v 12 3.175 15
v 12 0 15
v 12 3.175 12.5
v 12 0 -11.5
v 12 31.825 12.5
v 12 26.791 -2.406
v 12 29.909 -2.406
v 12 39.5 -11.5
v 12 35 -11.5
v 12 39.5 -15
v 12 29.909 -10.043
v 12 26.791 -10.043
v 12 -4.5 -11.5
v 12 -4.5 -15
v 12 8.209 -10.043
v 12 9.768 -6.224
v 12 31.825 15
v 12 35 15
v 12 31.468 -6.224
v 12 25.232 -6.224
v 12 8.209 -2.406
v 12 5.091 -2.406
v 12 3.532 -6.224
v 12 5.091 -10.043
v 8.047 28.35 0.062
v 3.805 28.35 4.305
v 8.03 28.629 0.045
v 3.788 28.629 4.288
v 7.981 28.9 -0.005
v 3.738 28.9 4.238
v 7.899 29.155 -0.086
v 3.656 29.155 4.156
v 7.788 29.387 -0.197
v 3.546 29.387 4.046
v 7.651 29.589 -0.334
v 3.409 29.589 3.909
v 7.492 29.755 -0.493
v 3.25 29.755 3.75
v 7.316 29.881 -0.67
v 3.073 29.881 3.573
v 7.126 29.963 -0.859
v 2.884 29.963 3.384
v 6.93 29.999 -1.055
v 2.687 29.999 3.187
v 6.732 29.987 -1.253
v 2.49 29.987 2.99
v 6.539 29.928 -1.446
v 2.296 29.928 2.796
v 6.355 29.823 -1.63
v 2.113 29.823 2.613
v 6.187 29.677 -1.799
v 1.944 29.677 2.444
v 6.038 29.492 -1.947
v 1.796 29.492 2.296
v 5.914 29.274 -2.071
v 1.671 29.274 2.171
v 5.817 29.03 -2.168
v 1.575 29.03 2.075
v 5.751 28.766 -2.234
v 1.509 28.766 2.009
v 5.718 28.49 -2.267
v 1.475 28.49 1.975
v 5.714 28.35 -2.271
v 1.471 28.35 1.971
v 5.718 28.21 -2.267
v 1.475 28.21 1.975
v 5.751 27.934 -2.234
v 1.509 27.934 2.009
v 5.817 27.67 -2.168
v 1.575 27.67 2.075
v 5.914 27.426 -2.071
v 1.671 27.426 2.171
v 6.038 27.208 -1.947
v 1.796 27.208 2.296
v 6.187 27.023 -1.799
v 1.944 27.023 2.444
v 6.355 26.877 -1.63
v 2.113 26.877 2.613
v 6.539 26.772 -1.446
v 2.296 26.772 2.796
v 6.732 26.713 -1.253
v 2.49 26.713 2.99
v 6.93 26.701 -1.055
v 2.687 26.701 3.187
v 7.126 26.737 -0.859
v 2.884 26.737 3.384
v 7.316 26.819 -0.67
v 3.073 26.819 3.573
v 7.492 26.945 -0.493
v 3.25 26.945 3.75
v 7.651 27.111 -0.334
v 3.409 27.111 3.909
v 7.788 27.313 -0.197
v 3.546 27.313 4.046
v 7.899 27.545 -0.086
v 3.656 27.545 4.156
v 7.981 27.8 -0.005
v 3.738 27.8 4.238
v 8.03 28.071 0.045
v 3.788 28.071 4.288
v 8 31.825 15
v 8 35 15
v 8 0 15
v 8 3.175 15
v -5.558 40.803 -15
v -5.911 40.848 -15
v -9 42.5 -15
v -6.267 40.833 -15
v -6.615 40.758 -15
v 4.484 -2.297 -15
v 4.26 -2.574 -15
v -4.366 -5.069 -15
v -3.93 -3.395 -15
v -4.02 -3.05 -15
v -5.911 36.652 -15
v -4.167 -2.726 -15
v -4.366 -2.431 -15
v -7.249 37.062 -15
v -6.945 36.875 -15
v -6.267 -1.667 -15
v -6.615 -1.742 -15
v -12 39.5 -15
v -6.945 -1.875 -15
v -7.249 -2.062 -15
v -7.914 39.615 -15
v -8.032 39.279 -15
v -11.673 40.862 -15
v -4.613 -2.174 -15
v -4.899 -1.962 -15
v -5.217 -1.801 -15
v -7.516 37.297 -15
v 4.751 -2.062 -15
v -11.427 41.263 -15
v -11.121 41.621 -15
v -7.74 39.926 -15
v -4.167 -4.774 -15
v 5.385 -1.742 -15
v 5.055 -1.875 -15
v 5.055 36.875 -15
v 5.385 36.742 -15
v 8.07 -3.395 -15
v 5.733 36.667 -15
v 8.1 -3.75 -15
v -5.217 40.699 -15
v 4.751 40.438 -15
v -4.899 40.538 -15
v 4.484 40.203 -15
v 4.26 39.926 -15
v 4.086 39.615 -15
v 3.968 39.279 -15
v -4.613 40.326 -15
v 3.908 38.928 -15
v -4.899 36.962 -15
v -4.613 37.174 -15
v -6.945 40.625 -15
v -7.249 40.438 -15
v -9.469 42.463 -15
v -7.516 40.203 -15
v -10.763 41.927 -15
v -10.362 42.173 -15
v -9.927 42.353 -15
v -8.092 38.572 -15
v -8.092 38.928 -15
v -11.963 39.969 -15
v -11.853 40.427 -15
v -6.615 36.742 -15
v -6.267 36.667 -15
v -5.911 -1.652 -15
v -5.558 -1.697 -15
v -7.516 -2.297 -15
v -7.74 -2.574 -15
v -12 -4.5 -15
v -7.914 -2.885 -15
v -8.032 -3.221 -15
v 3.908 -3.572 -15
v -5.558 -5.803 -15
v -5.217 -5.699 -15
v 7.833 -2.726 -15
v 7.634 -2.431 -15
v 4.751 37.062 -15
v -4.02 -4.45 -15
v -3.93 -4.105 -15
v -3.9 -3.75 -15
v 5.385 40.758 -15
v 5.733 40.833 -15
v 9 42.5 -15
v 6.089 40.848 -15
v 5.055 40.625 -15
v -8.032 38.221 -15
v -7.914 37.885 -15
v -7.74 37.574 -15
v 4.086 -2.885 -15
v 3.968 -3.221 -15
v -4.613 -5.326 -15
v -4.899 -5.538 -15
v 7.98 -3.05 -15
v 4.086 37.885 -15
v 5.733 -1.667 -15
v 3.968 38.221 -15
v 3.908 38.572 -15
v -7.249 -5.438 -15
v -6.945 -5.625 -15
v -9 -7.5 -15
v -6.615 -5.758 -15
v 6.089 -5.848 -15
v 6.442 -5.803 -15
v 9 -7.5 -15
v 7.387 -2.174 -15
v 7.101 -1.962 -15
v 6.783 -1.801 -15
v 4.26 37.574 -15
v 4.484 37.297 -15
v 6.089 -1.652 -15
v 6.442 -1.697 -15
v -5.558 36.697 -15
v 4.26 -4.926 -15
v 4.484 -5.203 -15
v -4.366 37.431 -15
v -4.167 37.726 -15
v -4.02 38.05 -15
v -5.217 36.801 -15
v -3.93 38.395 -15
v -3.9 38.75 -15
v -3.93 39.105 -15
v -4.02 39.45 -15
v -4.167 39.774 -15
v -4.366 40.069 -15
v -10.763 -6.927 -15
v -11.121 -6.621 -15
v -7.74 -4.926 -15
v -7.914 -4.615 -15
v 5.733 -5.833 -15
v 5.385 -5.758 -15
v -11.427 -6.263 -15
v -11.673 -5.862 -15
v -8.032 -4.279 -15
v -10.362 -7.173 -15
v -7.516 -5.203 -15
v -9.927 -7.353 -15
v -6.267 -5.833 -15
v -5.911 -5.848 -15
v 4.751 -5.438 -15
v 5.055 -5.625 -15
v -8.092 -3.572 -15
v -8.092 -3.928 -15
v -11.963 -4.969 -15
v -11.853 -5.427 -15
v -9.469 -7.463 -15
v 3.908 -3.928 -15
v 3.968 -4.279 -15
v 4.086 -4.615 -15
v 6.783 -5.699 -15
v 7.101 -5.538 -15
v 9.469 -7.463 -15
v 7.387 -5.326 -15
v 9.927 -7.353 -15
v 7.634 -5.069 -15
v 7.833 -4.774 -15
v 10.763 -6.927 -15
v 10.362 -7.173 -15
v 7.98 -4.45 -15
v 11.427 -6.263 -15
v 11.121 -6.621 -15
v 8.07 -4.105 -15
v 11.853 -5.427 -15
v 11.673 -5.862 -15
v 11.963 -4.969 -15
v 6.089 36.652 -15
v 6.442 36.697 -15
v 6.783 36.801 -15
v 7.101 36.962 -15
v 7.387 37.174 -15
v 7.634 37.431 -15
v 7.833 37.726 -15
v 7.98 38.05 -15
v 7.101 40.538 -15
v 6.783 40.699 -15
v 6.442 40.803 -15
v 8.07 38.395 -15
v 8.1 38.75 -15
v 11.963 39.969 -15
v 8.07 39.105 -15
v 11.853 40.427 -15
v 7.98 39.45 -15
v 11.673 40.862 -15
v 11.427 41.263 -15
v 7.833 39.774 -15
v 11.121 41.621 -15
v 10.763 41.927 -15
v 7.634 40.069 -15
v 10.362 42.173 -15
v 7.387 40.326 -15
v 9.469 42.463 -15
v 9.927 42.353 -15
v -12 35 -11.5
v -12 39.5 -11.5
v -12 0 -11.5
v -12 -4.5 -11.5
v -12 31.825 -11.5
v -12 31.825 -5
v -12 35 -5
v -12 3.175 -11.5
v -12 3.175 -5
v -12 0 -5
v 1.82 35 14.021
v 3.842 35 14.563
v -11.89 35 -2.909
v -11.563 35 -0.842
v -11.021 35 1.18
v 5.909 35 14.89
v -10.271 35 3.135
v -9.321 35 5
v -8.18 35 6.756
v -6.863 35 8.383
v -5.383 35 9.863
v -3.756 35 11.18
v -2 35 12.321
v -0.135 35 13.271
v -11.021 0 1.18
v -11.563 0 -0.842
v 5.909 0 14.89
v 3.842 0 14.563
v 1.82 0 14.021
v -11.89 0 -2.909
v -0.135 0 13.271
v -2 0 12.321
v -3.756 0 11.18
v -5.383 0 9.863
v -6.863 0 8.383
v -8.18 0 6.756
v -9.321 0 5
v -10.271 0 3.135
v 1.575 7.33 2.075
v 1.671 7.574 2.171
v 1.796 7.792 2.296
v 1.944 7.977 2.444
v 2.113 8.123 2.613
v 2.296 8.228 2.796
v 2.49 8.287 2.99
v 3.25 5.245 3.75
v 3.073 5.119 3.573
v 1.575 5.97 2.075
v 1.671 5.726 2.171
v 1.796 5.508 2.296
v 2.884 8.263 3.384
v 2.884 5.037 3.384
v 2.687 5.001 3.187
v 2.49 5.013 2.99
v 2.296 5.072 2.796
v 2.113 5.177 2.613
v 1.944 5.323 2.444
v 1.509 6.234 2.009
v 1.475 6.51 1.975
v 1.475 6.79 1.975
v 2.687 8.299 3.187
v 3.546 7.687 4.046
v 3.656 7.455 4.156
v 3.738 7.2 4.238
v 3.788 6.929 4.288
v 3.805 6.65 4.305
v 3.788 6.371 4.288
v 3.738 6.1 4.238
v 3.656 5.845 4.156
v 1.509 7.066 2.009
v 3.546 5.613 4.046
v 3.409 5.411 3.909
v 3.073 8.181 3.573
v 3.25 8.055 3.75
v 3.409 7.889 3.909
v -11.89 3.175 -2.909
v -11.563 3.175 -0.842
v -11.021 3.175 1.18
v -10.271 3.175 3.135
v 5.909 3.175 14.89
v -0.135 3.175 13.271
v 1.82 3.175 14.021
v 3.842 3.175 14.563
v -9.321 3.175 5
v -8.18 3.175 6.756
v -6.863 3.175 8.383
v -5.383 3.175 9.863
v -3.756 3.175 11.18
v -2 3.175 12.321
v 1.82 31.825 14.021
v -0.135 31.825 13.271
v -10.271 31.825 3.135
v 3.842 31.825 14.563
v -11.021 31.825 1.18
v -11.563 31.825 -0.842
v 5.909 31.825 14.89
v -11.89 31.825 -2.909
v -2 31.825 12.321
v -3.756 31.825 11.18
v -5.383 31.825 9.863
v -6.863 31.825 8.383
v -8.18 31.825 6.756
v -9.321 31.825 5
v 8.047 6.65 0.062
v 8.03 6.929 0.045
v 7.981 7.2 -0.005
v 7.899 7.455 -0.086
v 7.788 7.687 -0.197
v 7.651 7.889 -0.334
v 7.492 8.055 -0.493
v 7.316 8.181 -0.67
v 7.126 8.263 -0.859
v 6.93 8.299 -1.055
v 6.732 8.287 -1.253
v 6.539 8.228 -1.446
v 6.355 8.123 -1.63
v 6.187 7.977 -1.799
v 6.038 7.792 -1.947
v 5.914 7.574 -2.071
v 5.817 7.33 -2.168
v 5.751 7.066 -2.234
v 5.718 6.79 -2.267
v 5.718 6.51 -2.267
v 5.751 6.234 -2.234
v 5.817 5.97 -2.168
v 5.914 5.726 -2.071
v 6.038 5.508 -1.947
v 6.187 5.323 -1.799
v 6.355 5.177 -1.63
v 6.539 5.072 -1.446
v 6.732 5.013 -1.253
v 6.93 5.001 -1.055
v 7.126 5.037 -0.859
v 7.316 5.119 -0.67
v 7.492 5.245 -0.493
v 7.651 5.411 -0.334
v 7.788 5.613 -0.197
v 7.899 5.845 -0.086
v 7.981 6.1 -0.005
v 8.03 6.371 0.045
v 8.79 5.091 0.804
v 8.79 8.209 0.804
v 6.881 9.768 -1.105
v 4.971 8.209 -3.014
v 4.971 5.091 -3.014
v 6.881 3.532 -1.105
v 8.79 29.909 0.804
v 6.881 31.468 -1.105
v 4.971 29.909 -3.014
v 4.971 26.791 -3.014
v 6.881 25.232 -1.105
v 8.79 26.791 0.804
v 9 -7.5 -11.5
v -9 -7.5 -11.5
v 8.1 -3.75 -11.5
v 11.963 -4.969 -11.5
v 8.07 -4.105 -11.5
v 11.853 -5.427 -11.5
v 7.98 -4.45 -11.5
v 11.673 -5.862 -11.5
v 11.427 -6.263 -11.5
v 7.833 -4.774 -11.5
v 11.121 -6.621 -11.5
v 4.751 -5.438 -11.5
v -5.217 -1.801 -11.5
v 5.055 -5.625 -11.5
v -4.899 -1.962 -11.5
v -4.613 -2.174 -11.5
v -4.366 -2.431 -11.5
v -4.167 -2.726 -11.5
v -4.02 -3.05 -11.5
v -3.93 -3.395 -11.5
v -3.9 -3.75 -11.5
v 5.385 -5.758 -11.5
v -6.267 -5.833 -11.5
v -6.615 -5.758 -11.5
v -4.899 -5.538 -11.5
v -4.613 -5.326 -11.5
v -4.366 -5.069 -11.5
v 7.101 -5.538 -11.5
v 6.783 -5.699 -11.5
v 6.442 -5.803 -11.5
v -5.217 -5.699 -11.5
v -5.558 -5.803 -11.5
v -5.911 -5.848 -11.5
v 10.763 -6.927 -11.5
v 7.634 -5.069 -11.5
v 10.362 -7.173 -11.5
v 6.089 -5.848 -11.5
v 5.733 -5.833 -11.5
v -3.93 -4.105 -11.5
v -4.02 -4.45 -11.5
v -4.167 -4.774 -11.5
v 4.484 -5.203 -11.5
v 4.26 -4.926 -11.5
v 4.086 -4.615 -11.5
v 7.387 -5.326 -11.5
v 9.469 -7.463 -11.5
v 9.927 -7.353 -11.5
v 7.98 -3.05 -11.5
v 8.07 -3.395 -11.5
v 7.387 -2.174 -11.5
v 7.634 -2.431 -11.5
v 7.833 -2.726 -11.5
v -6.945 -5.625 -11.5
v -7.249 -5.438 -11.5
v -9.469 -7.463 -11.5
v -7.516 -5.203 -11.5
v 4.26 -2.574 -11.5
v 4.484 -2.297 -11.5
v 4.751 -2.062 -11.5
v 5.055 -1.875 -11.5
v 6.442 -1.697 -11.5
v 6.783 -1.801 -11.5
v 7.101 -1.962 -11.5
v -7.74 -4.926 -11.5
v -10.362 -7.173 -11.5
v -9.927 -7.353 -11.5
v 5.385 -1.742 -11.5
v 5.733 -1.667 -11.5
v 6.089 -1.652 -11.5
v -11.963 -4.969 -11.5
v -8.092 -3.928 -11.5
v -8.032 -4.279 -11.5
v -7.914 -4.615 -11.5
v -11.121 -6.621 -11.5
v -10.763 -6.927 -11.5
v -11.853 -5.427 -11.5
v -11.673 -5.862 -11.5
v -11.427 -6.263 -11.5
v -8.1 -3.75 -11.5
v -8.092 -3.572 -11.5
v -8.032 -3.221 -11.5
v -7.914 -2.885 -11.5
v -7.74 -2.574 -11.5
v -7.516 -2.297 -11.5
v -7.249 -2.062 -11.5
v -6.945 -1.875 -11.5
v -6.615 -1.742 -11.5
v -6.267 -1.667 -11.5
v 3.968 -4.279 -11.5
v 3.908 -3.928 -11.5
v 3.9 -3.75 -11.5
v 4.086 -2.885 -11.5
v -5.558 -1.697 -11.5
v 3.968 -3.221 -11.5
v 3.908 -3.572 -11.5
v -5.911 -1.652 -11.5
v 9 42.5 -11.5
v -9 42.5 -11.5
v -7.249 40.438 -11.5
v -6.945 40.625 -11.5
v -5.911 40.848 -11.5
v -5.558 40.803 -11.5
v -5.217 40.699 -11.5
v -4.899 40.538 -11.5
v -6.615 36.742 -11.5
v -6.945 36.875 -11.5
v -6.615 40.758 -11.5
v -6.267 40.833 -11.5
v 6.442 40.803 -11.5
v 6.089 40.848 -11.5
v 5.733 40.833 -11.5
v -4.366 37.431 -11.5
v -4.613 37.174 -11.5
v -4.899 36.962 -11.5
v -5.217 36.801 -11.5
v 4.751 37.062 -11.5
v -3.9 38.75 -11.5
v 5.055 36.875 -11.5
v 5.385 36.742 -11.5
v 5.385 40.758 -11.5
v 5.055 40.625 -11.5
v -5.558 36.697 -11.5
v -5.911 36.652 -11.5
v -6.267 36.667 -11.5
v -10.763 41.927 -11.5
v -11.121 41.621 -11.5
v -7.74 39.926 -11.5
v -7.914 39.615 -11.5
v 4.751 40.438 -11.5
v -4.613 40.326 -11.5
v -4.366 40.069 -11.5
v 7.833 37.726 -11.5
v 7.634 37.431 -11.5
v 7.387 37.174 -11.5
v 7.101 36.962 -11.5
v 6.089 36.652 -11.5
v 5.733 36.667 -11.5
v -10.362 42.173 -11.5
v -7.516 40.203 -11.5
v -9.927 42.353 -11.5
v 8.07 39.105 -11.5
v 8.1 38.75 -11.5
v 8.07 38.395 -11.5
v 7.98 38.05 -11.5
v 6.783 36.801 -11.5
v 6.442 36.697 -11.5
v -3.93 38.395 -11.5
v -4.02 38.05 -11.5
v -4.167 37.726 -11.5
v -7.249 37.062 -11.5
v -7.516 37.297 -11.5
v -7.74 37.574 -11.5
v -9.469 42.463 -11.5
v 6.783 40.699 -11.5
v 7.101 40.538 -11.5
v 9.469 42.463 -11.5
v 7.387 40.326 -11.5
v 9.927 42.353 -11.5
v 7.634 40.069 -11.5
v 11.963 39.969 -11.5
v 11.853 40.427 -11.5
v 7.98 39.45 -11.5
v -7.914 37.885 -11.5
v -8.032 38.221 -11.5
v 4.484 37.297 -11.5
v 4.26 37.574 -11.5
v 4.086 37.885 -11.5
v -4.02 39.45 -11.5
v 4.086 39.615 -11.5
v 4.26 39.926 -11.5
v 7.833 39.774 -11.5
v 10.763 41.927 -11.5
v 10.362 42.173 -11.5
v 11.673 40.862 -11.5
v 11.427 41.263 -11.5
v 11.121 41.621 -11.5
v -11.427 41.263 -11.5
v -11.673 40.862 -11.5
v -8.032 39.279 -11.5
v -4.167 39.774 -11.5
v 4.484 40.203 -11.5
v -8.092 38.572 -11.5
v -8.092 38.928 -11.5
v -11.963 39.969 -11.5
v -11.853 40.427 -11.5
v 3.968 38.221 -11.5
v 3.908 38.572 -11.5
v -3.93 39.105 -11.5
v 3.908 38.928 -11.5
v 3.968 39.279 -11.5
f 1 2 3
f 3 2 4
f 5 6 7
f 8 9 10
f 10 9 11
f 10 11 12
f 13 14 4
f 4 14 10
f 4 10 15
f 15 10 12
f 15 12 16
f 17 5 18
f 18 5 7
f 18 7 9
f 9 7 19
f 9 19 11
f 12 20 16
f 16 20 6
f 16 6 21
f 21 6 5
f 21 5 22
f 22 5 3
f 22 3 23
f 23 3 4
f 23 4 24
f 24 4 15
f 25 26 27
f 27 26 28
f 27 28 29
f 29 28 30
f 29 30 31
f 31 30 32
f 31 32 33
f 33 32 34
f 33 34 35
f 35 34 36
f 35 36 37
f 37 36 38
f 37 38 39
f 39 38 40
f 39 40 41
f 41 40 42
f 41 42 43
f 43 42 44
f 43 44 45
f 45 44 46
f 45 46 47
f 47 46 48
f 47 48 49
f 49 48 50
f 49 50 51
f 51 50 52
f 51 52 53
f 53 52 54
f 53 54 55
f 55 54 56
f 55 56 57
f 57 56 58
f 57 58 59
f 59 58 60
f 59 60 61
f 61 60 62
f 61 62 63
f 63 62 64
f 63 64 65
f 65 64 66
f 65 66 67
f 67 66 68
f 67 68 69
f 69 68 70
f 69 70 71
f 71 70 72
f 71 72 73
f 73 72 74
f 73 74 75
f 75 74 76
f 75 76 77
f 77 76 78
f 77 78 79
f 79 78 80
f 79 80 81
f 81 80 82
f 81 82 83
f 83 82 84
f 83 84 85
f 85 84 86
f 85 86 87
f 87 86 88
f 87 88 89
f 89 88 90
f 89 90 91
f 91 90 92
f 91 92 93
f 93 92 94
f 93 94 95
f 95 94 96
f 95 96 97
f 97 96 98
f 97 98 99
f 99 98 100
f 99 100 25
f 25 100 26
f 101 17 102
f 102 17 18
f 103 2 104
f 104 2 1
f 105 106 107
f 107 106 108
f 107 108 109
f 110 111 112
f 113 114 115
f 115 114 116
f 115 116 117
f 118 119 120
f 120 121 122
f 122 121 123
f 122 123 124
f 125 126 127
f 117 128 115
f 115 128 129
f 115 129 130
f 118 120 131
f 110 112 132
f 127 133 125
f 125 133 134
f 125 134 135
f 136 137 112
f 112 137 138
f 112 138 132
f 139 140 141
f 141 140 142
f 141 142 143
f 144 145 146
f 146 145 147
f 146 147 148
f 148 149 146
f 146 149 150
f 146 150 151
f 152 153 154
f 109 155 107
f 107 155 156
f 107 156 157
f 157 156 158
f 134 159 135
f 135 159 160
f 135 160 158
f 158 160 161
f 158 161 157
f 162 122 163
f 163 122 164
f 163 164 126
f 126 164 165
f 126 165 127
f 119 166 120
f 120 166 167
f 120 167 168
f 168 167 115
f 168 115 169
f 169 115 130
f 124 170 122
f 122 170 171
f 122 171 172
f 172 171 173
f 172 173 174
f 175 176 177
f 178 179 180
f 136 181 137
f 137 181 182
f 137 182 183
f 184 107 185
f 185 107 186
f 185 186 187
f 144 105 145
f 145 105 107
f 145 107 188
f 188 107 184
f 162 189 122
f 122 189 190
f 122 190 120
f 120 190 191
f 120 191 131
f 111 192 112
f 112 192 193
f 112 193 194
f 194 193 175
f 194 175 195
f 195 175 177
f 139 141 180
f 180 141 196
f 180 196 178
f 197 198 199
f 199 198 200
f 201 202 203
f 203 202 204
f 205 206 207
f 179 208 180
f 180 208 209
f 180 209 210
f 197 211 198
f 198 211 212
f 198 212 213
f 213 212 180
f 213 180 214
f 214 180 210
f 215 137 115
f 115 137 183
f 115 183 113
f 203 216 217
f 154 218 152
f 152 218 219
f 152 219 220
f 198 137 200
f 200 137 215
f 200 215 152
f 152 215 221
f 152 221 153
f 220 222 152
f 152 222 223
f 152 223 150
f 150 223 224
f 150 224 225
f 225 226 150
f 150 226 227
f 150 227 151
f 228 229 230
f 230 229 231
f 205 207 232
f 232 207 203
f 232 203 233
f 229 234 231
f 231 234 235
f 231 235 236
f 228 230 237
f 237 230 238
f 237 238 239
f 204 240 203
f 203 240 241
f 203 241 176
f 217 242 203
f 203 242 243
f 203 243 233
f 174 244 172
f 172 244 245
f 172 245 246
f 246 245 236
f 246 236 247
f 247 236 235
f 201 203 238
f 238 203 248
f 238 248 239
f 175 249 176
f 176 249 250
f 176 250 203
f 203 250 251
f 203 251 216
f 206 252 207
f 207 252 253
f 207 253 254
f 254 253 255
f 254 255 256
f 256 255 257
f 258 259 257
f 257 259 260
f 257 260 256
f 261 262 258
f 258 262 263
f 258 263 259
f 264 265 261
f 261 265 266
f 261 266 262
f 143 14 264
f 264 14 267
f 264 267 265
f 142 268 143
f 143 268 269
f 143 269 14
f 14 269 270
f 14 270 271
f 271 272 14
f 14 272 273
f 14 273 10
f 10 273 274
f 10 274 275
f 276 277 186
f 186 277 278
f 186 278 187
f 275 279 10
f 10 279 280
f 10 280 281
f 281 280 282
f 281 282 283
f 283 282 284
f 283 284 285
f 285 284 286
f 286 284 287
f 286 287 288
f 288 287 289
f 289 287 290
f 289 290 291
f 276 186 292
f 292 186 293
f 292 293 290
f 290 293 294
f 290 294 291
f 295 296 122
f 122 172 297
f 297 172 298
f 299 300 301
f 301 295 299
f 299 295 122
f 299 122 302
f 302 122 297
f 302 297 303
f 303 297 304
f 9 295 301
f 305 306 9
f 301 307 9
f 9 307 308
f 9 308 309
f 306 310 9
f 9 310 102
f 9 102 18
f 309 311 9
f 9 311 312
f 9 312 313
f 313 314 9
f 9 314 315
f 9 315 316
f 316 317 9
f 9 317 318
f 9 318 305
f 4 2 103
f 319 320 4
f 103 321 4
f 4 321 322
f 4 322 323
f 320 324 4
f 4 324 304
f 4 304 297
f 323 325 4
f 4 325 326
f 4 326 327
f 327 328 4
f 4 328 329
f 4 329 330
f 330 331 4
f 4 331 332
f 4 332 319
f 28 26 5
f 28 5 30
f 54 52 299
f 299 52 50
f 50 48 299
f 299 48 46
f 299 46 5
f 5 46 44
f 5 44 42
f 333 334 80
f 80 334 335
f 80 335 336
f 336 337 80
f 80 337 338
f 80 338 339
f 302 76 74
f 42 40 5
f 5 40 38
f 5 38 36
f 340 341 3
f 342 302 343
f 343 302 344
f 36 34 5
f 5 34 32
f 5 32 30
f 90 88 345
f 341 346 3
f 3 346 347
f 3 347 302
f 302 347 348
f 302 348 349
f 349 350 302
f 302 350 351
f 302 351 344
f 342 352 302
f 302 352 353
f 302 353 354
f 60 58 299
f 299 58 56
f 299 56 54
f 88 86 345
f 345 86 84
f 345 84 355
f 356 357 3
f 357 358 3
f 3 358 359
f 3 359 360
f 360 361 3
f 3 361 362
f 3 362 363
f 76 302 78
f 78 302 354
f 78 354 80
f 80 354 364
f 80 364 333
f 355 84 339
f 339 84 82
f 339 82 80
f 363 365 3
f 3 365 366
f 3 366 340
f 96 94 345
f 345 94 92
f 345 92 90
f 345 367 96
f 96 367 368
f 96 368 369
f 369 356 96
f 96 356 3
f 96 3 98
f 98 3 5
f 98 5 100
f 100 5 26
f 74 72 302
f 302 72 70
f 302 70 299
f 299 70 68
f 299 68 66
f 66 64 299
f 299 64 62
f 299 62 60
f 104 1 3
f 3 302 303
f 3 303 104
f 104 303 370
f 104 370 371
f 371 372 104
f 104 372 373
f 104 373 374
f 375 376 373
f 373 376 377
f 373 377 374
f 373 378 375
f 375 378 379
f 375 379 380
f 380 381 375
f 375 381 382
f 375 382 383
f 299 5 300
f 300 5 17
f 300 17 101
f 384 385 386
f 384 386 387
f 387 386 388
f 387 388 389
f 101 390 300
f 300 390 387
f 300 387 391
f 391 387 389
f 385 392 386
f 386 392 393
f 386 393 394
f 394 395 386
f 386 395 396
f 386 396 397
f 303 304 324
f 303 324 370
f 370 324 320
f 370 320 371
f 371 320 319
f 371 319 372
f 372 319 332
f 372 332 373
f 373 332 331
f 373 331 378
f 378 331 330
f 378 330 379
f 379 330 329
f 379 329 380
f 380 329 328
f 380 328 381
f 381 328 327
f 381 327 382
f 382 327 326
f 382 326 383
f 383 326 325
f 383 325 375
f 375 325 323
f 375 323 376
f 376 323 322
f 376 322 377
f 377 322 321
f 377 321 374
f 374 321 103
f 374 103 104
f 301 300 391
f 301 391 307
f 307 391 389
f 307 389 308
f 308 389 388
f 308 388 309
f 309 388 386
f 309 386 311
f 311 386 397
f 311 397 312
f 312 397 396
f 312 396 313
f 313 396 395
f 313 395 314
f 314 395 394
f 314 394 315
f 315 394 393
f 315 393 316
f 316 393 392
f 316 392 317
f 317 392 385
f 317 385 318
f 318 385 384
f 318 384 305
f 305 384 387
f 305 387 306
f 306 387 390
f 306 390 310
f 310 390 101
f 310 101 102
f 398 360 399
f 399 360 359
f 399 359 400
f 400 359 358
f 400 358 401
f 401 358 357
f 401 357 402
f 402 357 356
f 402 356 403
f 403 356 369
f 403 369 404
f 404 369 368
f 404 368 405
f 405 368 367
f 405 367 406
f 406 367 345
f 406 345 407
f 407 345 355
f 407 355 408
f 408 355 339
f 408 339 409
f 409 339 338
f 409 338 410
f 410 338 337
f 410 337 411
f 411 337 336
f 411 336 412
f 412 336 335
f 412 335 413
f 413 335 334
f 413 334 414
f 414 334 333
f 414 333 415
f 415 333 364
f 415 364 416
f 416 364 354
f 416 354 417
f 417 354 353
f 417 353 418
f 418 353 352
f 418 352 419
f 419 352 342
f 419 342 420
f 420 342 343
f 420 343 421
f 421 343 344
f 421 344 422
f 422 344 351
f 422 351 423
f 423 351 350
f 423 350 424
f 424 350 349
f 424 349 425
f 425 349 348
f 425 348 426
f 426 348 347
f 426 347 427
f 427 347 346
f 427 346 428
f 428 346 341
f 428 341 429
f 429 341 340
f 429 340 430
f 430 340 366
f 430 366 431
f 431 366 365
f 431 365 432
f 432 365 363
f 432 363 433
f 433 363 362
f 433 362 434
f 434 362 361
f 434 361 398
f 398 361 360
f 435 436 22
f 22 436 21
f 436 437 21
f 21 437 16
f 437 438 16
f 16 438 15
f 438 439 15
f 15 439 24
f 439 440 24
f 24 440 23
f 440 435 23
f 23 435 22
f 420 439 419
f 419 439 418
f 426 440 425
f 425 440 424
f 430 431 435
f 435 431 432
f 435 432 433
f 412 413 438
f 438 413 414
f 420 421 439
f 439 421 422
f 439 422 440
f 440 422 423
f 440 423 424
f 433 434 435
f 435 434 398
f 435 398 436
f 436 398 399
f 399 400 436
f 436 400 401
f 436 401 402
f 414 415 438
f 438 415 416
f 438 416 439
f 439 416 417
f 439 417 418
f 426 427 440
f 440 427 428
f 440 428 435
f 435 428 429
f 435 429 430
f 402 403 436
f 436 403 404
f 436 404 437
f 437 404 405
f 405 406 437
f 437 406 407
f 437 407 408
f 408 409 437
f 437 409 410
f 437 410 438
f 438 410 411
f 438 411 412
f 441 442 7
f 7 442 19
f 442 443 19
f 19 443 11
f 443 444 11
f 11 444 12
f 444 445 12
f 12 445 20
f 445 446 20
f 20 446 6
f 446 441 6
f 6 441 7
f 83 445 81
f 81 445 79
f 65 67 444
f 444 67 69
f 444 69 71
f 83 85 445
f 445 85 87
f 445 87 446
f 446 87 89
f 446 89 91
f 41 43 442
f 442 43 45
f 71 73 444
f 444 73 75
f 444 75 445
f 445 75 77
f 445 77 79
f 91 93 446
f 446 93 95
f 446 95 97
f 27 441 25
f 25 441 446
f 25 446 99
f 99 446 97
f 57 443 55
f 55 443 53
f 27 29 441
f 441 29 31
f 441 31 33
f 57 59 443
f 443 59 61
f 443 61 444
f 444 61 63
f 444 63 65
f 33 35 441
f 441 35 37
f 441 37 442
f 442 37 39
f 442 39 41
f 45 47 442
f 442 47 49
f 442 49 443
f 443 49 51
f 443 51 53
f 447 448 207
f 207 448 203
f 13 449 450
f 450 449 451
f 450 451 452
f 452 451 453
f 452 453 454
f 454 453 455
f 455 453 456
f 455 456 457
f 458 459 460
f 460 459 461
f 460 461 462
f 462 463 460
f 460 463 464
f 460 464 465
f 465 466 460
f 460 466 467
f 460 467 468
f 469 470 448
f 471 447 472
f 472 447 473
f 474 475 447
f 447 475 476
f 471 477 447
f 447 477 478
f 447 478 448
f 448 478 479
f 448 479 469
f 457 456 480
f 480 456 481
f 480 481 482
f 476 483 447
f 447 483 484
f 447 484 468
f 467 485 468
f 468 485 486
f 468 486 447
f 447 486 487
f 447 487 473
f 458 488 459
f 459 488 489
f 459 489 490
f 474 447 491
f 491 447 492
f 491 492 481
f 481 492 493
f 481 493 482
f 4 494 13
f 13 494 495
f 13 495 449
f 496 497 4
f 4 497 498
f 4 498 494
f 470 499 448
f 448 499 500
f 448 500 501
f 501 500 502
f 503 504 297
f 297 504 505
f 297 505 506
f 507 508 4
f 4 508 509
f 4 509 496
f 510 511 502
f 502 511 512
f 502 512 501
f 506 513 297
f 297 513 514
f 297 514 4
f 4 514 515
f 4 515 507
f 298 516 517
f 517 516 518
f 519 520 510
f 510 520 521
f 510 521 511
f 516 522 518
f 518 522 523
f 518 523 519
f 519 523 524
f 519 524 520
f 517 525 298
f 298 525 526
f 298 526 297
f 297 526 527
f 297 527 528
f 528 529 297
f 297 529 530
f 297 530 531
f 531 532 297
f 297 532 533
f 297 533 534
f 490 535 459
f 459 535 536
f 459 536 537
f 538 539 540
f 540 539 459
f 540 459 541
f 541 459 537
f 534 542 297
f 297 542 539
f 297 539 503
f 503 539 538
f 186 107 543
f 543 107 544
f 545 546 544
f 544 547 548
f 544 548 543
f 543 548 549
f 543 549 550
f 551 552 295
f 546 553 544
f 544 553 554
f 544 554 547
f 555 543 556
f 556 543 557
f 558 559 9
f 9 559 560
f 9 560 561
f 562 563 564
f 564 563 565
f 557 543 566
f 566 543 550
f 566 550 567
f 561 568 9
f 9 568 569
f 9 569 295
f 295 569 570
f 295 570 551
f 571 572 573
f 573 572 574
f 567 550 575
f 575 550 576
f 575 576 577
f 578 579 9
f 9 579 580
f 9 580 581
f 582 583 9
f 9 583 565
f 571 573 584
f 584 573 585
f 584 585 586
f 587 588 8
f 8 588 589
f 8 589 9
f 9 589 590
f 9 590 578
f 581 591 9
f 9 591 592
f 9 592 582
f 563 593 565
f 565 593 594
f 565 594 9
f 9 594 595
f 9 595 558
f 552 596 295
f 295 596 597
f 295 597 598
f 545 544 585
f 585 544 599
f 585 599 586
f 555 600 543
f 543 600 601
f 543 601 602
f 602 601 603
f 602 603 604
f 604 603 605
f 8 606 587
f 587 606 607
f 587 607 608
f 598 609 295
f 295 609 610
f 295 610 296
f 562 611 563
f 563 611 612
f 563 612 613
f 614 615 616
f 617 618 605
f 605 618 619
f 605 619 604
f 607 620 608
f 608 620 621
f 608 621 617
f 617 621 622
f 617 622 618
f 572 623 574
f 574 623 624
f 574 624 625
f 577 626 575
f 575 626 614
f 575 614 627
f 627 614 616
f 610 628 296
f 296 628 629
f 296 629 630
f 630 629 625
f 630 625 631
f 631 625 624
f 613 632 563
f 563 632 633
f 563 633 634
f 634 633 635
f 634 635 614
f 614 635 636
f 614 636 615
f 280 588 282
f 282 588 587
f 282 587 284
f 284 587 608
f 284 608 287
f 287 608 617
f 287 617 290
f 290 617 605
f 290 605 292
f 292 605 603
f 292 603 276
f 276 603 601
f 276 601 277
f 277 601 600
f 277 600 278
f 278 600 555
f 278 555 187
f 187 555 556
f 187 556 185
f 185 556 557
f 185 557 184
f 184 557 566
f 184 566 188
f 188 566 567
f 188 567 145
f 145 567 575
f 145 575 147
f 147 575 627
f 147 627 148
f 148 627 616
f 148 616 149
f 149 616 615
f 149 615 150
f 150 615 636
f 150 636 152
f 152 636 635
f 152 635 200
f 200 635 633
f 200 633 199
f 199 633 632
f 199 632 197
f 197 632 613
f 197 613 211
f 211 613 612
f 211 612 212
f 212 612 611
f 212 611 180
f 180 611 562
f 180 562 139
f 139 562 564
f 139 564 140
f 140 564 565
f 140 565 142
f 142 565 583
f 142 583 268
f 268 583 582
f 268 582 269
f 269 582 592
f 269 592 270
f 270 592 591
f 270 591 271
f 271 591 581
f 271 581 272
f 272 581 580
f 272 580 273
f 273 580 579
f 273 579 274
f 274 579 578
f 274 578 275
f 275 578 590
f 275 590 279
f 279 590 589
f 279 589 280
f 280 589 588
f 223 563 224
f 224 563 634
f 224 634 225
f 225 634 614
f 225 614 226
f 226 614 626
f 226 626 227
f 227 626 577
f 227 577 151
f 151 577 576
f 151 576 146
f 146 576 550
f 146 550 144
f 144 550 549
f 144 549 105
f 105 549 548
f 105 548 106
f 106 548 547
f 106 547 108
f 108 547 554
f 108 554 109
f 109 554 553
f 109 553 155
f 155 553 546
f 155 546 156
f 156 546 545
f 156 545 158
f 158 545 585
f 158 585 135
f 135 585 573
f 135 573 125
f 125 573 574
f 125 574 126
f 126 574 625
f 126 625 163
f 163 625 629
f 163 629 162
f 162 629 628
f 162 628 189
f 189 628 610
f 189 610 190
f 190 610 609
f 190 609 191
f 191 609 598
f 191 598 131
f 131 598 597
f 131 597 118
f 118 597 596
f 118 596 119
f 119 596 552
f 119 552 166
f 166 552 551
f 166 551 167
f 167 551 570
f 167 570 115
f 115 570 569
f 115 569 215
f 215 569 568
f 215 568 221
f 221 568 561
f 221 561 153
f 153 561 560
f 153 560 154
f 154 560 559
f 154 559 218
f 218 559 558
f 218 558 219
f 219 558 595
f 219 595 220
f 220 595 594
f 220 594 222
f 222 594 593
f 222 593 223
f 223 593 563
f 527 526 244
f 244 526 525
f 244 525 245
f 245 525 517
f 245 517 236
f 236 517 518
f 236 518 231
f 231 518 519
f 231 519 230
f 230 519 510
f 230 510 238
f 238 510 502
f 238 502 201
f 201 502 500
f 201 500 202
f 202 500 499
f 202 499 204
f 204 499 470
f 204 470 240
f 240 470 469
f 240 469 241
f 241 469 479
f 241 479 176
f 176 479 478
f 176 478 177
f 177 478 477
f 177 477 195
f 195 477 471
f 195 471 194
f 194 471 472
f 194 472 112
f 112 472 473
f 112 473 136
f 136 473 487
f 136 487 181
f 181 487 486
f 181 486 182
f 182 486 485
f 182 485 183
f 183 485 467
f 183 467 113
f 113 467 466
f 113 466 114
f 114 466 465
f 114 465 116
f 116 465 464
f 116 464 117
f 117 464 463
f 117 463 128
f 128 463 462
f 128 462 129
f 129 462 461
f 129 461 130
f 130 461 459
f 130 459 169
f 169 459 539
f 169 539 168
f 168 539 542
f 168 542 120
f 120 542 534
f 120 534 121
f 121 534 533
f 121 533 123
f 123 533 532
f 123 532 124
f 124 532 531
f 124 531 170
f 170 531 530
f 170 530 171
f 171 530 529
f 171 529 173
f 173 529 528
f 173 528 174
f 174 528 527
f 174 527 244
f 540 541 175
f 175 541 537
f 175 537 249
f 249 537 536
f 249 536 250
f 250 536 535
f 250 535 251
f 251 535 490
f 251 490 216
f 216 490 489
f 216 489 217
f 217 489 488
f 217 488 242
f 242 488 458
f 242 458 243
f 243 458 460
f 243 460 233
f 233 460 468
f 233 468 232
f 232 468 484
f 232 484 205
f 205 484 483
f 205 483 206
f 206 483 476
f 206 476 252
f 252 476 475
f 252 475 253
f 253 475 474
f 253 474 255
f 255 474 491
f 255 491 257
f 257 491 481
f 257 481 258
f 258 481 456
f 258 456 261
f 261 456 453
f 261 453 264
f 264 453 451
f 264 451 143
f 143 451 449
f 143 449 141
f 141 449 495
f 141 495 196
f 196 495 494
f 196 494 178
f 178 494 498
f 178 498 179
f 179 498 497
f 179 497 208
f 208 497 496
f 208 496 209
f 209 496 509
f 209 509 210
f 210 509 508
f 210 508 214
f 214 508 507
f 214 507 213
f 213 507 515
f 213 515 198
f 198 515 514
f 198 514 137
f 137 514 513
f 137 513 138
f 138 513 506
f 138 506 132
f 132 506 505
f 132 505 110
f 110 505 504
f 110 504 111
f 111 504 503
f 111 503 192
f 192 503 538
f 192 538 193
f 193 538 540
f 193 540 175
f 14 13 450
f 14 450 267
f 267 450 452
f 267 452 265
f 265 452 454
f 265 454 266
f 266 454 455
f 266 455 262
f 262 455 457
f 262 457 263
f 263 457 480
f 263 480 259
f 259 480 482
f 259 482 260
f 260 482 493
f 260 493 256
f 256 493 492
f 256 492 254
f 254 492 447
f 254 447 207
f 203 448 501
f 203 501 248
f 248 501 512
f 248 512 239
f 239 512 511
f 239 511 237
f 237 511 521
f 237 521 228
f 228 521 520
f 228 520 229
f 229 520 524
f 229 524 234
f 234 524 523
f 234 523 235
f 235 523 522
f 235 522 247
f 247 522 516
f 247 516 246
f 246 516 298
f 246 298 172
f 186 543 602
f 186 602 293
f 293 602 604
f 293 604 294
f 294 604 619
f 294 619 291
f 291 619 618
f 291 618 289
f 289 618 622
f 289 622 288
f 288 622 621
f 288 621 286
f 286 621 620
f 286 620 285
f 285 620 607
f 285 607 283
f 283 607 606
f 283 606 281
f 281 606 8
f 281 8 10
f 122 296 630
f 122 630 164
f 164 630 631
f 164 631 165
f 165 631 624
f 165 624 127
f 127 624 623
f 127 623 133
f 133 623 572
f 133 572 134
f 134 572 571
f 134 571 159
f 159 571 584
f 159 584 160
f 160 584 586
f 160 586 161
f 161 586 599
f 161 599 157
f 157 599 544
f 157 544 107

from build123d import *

# Parameters (mm, degrees)
SKETCH6_W           = 24
SKETCH6_H           = 30
BOSS_EXTRUDE5_DEPTH = 35
CUT_EXTRUDE1_DEPTH  = 14.325
FILLET1_R           = 20
SKETCH11_R          = 1.65
CUT_EXTRUDE3_DEPTH  = 41.095199214
CUT_EXTRUDE8_DEPTH  = 14
SKETCH14_W          = 24
SKETCH14_H          = 50
BOSS_EXTRUDE6_DEPTH = 3.5
SKETCH15_R          = 2.1
CUT_EXTRUDE9_DEPTH  = 3.5
FILLET2_R           = 3


with BuildPart() as part:
    # Sketch6 → Boss-Extrude5 (new body)
    with BuildSketch(Plane(origin=(0, 0, 0), x_dir=(1, 0, 0), z_dir=(0, 1, 0))):
        Rectangle(SKETCH6_W, SKETCH6_H)
    extrude(amount=BOSS_EXTRUDE5_DEPTH)

    # Sketch8 → Cut-Extrude1 (cut)
    with BuildSketch(Plane(origin=(0, 17.5, 0), x_dir=(1, 0, 0), z_dir=(0, 1, 0))):
        Polygon((-12, 11.5), (-12, -15), (14.5, -15), align=None)
    cut_extrude1 = extrude(amount=-CUT_EXTRUDE1_DEPTH, mode=Mode.SUBTRACT)

    # Mirror2: Cut-Extrude1 across plane
    add(cut_extrude1.mirror(Plane.ZX.offset(17.5)), mode=Mode.SUBTRACT)

    # Fillet1
    fillet1_edges = [part.edges().sort_by_distance(p)[0] for p in [
        (-12, 1.5875, 15),
        (-12, 33.4125, 15),
    ]]
    fillet(fillet1_edges, radius=FILLET1_R)

    # Sketch11 → Cut-Extrude3 (cut, through all)
    with BuildSketch(Plane(origin=(-0.25, 0, 0.25), x_dir=(0.7071067811865439, 0, 0.7071067811865511), z_dir=(-0.7071067811865511, 0, 0.7071067811865439))):
        with Locations((4.084116139, 6.65)):
            Circle(SKETCH11_R)
        with Locations((4.084116139, 28.35)):
            Circle(SKETCH11_R)
    extrude(amount=-CUT_EXTRUDE3_DEPTH, mode=Mode.SUBTRACT)

    # Sketch12 → Cut-Extrude8 (cut)
    with BuildSketch(Plane(origin=(13.892135624, 0, -13.892135624), x_dir=(0.7071067811865439, 0, 0.7071067811865511), z_dir=(-0.7071067811865511, 0, 0.7071067811865439))):
        Polygon((6.784116139, 8.208845727), (4.084116139, 9.767691454), (1.384116139, 8.208845727), (1.384116139, 5.091154273), (4.084116139, 3.532308546), (6.784116139, 5.091154273), align=None)
        Polygon((6.784116139, 29.908845727), (6.784116139, 26.791154273), (4.084116139, 25.232308546), (1.384116139, 26.791154273), (1.384116139, 29.908845727), (4.084116139, 31.467691454), align=None)
    extrude(amount=CUT_EXTRUDE8_DEPTH, mode=Mode.SUBTRACT)

    # Sketch14 → Boss-Extrude6 (add)
    with BuildSketch(Plane(origin=(0, 0, -15), x_dir=(-1, 0, 0), z_dir=(0, 0, -1))):
        with Locations((0, 17.5)):
            Rectangle(SKETCH14_W, SKETCH14_H)
    extrude(amount=-BOSS_EXTRUDE6_DEPTH)

    # Sketch15 → Cut-Extrude9 (cut)
    with BuildSketch(Plane.XY.offset(-11.5)):
        with Locations((6, 38.75)):
            Circle(SKETCH15_R)
        with Locations((-6, 38.75)):
            Circle(SKETCH15_R)
        with Locations((-6, -3.75)):
            Circle(SKETCH15_R)
        with Locations((6, -3.75)):
            Circle(SKETCH15_R)
    extrude(amount=-CUT_EXTRUDE9_DEPTH, mode=Mode.SUBTRACT)

    # Fillet2
    fillet2_edges = [part.edges().sort_by_distance(p)[0] for p in [
        (12, -7.5, -13.25),
        (-12, 42.5, -13.25),
        (-12, -7.5, -13.25),
        (12, 42.5, -13.25),
    ]]
    fillet(fillet2_edges, radius=FILLET2_R)


solid = part.part
